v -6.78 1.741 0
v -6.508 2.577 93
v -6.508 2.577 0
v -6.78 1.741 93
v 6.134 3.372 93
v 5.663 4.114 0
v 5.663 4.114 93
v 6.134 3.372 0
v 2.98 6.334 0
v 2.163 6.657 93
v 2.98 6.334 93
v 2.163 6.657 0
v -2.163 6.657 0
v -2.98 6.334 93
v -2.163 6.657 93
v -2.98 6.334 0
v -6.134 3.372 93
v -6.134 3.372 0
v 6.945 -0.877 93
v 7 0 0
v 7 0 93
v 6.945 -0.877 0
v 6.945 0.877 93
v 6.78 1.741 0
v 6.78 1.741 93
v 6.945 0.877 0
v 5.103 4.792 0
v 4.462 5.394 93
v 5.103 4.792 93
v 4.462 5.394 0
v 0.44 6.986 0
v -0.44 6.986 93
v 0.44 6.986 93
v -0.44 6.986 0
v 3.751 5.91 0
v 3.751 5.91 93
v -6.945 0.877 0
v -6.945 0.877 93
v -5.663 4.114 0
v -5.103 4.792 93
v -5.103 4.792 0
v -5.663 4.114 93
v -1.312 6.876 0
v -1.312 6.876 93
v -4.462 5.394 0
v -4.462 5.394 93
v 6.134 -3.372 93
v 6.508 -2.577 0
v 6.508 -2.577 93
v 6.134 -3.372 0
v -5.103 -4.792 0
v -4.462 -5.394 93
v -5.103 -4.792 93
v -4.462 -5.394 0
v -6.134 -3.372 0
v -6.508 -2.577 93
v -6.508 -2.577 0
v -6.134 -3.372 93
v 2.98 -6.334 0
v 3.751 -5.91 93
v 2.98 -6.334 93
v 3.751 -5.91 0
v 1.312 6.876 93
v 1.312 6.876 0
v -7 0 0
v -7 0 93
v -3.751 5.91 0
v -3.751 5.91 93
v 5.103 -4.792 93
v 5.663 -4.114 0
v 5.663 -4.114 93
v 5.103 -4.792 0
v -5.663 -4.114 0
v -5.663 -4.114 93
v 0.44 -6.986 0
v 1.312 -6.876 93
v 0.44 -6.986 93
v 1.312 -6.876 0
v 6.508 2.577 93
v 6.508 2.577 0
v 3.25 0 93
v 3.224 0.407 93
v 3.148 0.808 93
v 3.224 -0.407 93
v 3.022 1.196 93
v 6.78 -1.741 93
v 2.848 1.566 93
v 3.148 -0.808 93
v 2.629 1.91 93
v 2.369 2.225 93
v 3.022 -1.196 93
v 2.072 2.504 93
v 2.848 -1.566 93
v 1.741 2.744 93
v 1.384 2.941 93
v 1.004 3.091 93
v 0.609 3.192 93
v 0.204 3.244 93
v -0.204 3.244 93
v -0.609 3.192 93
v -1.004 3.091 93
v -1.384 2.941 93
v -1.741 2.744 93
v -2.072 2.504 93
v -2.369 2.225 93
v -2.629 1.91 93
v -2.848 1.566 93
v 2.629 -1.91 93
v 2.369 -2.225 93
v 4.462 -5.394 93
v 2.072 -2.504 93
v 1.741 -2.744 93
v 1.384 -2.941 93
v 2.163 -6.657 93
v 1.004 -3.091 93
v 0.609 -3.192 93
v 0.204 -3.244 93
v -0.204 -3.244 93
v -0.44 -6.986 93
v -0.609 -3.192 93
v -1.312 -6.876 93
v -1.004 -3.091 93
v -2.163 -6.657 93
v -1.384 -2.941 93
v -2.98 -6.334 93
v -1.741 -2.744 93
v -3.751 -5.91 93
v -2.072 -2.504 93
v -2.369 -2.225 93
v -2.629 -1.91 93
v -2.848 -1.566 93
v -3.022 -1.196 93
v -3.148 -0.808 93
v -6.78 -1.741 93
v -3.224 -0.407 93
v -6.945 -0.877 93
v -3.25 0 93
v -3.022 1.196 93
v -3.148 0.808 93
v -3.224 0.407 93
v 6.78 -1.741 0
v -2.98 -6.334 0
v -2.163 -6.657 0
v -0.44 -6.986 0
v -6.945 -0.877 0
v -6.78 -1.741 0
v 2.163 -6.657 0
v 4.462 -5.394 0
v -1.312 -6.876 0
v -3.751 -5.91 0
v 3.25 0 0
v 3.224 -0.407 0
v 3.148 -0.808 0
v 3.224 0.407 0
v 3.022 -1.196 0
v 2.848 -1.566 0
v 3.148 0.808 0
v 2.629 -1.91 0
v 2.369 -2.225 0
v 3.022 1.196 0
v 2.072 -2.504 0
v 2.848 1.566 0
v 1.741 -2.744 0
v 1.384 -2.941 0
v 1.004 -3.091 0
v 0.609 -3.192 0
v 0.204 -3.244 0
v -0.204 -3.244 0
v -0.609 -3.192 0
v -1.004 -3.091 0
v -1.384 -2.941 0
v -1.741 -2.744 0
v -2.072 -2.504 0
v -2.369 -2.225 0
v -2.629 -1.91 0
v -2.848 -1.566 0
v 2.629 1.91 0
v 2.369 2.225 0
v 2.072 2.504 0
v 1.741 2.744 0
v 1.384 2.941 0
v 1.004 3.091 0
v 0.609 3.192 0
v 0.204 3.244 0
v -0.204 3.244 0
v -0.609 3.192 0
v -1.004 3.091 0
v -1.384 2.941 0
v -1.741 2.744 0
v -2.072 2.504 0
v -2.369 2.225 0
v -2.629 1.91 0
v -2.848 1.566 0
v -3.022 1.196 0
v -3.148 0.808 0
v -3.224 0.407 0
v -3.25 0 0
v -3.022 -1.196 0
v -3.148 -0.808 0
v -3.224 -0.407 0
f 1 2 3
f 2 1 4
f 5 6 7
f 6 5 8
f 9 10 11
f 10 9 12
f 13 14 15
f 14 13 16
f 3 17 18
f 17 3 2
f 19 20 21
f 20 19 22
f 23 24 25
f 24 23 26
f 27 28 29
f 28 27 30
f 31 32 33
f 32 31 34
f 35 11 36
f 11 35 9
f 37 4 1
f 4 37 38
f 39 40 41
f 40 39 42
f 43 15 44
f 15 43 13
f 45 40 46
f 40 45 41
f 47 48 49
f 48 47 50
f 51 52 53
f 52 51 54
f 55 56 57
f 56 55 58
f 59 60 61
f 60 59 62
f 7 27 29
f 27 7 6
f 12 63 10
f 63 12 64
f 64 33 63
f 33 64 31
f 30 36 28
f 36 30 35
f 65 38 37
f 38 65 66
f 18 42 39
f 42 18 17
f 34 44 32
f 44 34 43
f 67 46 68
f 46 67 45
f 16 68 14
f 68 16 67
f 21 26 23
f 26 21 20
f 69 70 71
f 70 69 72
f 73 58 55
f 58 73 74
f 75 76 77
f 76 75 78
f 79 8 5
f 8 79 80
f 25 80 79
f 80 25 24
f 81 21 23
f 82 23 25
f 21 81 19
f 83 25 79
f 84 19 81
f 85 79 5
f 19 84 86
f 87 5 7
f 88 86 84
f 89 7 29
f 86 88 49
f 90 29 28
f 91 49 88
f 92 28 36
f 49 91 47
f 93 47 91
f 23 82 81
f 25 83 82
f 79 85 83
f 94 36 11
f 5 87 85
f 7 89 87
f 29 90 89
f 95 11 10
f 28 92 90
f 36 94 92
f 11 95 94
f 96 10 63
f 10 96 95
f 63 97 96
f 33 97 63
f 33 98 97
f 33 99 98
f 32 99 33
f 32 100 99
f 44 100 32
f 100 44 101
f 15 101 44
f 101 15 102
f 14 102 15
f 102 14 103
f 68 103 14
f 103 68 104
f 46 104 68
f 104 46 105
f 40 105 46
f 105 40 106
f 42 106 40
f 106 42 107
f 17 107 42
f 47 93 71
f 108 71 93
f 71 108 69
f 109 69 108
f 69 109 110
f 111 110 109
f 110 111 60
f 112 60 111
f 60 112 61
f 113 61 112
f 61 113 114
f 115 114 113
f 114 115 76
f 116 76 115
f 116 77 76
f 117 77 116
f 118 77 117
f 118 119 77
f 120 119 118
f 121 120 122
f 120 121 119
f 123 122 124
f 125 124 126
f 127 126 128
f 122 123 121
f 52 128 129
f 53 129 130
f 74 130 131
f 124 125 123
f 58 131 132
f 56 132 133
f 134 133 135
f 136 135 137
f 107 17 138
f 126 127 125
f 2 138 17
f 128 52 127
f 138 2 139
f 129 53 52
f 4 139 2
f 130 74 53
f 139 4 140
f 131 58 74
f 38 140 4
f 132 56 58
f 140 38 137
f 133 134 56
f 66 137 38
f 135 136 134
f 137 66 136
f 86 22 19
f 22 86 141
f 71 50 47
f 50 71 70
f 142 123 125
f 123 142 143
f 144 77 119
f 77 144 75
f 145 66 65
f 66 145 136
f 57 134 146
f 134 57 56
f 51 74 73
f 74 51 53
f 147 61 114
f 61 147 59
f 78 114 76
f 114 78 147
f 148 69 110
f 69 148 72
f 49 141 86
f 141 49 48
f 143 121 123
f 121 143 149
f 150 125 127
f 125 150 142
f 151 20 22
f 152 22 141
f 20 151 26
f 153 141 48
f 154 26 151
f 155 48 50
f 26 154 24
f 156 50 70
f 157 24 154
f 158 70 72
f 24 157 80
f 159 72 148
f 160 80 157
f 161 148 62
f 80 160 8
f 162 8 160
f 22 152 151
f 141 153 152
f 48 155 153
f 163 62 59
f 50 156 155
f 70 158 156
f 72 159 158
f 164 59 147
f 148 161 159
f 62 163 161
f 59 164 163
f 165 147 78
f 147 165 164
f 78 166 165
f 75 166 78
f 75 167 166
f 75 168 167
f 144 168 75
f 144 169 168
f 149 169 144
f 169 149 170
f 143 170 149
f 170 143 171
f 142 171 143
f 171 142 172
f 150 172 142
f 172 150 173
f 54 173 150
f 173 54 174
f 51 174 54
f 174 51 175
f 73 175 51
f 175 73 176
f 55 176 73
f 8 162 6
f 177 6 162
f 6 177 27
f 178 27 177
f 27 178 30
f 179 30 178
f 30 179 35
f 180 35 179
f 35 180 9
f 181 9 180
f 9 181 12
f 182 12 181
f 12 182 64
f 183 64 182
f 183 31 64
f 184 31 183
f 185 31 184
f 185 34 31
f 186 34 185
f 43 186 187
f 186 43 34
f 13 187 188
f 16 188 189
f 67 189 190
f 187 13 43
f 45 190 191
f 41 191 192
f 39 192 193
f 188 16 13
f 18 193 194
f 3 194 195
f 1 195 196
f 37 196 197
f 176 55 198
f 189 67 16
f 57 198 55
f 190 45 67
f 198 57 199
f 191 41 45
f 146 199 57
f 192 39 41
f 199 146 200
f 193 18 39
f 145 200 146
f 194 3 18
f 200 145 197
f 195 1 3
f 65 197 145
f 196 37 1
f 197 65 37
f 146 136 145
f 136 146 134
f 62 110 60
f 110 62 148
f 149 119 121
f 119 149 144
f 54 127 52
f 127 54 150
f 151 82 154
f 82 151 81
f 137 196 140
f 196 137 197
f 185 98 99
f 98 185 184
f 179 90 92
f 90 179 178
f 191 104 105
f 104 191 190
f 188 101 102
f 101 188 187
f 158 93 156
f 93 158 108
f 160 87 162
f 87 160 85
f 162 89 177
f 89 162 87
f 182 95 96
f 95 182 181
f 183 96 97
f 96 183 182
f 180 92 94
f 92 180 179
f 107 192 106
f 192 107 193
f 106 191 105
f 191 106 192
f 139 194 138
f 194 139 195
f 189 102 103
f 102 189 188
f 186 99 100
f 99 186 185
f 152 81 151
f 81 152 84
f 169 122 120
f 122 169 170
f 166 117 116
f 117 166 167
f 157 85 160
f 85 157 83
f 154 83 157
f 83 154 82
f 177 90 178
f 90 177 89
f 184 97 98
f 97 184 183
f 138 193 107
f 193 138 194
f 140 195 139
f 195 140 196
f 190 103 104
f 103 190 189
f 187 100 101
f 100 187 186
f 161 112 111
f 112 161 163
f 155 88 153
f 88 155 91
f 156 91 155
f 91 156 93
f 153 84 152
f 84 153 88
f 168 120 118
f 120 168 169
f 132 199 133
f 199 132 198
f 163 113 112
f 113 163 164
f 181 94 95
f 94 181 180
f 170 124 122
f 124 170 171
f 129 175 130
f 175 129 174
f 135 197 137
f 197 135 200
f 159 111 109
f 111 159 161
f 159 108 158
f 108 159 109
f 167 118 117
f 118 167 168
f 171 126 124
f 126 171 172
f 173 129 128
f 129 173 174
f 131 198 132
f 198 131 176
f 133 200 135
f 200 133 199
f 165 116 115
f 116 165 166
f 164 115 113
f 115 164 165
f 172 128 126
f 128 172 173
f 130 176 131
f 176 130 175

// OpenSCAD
$fn = 50;


difference() {
	union() {
		cylinder(h = 93, r = 7.0000000000);
	}
	union() {
		translate(v = [0.0000000000, 0.0000000000, -100.0000000000]) {
			cylinder(h = 200, r = 3.2500000000);
		}
	}
}
